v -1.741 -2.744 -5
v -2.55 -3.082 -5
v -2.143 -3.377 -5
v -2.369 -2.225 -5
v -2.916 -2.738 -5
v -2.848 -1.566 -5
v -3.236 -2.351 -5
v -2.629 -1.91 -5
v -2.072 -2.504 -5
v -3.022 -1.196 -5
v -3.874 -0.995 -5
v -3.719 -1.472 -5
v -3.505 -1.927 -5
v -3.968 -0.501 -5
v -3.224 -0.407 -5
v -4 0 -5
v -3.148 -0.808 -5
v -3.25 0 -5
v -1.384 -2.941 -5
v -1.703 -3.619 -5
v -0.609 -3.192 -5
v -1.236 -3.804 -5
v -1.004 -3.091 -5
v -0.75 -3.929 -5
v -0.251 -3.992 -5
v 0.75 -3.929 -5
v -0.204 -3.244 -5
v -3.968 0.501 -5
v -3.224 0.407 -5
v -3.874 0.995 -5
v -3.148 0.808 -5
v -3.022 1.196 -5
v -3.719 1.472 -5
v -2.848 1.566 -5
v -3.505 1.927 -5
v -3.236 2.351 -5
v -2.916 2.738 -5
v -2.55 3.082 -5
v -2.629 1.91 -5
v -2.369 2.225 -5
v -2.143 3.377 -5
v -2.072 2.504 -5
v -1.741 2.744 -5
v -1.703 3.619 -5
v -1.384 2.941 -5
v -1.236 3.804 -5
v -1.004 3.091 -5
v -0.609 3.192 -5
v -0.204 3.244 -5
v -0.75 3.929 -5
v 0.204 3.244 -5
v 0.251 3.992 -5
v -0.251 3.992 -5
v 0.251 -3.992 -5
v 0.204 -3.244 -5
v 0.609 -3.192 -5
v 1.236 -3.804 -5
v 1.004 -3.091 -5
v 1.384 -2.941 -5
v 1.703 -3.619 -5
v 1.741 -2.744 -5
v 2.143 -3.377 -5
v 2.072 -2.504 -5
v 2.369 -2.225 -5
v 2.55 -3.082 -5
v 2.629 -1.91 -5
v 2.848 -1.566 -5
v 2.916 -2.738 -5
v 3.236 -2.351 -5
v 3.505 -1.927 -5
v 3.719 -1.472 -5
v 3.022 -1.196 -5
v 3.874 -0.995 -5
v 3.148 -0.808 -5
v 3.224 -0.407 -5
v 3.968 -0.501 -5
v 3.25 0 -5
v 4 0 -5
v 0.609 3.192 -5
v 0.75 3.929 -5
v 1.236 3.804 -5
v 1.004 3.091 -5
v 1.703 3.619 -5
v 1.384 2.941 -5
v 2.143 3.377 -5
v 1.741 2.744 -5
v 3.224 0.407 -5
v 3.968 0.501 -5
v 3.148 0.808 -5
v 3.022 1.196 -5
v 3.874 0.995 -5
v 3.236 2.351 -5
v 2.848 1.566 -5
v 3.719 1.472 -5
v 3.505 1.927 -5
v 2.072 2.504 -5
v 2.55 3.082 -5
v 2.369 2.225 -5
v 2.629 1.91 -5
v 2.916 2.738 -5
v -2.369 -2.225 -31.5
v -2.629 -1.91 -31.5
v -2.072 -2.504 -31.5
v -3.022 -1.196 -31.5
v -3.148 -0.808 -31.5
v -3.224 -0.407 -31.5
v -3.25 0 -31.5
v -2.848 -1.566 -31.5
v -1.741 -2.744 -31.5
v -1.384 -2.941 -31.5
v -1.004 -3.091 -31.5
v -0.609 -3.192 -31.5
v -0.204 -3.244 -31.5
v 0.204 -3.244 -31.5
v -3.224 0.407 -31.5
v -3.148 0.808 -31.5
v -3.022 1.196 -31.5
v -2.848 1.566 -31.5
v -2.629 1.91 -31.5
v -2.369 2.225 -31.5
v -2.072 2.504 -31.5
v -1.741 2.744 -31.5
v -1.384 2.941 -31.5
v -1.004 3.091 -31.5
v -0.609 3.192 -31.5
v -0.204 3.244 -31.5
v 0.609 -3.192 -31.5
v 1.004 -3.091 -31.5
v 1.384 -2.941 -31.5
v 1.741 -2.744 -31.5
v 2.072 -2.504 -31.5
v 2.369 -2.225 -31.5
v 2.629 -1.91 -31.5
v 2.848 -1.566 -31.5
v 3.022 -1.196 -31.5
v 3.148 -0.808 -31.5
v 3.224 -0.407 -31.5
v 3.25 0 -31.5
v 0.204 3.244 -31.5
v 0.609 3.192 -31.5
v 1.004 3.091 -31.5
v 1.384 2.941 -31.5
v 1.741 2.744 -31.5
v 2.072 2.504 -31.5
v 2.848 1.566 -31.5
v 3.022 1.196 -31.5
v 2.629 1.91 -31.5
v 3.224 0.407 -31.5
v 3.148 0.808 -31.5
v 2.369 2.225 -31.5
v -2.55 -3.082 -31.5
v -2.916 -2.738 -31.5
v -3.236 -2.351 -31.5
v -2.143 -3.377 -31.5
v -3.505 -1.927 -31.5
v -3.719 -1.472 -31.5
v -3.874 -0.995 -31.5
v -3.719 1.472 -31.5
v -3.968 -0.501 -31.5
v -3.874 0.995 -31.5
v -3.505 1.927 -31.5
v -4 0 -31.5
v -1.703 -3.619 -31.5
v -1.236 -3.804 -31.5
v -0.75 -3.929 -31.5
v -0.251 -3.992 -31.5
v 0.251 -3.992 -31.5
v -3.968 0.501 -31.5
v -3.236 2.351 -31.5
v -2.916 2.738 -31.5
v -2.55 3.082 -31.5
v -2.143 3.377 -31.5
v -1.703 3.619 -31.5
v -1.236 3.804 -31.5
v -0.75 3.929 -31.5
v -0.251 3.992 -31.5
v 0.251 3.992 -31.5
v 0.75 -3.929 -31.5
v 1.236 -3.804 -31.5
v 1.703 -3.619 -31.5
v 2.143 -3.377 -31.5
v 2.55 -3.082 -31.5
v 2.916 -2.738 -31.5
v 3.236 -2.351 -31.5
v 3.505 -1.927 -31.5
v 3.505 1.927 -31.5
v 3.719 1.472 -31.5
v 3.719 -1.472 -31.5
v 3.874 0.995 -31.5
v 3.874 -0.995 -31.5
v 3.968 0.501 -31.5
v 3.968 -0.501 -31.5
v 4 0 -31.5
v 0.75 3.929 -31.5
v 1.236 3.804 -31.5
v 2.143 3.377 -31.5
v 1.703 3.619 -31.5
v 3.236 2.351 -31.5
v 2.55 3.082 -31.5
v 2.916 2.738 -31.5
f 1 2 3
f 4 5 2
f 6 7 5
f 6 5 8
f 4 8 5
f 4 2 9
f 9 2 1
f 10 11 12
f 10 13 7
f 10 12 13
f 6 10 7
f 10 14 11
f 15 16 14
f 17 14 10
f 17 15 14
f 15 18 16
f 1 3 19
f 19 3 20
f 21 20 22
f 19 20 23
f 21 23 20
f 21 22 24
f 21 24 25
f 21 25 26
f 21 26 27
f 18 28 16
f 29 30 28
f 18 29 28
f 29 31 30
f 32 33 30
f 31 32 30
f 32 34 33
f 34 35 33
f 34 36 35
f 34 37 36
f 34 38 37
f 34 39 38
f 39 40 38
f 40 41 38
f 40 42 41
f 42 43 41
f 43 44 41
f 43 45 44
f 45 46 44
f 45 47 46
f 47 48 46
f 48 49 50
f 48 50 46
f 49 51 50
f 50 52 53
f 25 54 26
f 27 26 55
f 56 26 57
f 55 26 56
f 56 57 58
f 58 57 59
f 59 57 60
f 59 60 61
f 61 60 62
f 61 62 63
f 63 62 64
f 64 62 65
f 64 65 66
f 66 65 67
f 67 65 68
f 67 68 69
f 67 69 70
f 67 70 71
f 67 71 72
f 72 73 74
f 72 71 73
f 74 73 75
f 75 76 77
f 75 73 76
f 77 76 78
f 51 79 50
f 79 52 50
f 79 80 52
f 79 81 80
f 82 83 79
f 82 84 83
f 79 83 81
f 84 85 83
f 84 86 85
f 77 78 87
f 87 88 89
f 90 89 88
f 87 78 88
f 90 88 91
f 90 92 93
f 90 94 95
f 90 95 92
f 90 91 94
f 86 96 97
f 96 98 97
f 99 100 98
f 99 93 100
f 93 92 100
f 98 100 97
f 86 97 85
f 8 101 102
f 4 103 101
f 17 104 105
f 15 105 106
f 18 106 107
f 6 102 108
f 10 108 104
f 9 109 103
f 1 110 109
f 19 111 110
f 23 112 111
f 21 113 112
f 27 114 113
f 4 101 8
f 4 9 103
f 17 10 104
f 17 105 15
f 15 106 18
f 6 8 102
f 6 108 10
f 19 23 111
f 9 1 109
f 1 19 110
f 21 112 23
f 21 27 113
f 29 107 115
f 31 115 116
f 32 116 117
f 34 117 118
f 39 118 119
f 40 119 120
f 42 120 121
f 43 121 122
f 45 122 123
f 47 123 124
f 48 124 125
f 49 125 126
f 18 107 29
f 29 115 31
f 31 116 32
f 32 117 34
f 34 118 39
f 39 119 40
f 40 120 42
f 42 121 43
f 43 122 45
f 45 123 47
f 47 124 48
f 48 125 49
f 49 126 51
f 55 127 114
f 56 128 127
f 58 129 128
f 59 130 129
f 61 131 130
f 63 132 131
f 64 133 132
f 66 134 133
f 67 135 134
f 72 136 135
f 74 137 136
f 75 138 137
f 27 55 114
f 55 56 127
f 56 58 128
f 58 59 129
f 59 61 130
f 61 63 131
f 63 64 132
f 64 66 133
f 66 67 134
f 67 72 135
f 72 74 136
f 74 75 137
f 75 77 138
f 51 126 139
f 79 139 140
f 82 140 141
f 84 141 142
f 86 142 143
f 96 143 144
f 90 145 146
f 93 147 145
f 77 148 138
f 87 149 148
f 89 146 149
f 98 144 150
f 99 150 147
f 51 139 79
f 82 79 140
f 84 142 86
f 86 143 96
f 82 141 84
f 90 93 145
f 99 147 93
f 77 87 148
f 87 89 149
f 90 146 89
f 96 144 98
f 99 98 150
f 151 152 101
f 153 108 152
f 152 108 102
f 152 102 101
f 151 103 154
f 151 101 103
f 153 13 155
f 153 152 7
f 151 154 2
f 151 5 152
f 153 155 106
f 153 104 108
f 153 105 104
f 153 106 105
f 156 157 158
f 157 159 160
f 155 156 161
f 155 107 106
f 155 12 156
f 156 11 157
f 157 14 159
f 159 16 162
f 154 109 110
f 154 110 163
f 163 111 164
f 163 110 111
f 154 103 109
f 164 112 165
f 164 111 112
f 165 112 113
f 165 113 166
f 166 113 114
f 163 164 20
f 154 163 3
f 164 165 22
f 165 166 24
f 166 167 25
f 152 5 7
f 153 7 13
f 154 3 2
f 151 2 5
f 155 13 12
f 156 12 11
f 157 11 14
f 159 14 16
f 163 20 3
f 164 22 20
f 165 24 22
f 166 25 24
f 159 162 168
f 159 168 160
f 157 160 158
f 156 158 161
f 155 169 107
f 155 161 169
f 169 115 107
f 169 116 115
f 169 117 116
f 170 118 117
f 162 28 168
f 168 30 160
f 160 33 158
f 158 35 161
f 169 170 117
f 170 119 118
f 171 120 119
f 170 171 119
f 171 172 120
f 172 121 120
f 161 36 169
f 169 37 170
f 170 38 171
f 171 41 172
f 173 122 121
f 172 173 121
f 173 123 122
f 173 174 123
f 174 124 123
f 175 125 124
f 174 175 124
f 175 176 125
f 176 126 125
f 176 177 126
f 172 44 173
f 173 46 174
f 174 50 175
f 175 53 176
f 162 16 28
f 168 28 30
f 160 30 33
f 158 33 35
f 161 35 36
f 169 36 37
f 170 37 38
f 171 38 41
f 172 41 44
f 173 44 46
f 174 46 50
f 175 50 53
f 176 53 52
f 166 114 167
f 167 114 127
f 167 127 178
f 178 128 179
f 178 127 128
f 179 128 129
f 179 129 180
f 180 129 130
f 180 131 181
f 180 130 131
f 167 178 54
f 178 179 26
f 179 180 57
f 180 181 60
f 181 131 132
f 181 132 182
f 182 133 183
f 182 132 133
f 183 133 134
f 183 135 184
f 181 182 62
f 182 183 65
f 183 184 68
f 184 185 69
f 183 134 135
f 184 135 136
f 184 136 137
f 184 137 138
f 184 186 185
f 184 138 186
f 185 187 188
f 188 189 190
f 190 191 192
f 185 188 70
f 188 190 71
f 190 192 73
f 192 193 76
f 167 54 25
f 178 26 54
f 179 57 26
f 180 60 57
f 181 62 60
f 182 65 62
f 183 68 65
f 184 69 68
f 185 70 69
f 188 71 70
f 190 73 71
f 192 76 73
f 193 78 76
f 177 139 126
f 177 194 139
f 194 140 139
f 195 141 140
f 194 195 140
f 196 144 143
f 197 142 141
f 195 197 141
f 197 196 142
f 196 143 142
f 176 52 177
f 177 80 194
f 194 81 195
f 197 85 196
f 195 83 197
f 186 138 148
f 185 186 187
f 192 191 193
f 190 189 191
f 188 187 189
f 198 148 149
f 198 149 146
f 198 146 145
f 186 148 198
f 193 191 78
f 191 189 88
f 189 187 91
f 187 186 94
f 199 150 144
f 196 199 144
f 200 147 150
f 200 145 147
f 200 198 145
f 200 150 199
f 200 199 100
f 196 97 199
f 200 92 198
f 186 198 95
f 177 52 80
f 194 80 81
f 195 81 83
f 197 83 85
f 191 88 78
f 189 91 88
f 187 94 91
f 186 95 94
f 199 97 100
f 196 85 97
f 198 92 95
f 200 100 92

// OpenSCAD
$fn = 50;

difference() {
	union() {
		translate(v = [0, 0, -31.5]) {
			cylinder(h = 34.5, r = 4.0);
		}
	}
	union() {
		translate(v = [0, 0, 0]) {
			rotate(a = [0, 0, 0]) {
				difference() {
					union() {
						translate(v = [0, 0, -5]) {
							linear_extrude(height = 5) {
								polygon(points = [[5.914249999999999, 0.0], [2.957125, 5.1218907443321156], [-2.9571249999999982, 5.1218907443321156], [-5.914249999999999, 7.242867331857232e-16], [-2.9571250000000022, -5.121890744332115], [2.9571249999999956, -5.121890744332118]]);
							}
						}
					}
					union();
				}
			}
		}
		#cylinder(h = 3, r = 6.25);
		#translate(v = [0, 0, -100.0]) {
			cylinder(h = 200, r = 3.25);
		}
	}
}
